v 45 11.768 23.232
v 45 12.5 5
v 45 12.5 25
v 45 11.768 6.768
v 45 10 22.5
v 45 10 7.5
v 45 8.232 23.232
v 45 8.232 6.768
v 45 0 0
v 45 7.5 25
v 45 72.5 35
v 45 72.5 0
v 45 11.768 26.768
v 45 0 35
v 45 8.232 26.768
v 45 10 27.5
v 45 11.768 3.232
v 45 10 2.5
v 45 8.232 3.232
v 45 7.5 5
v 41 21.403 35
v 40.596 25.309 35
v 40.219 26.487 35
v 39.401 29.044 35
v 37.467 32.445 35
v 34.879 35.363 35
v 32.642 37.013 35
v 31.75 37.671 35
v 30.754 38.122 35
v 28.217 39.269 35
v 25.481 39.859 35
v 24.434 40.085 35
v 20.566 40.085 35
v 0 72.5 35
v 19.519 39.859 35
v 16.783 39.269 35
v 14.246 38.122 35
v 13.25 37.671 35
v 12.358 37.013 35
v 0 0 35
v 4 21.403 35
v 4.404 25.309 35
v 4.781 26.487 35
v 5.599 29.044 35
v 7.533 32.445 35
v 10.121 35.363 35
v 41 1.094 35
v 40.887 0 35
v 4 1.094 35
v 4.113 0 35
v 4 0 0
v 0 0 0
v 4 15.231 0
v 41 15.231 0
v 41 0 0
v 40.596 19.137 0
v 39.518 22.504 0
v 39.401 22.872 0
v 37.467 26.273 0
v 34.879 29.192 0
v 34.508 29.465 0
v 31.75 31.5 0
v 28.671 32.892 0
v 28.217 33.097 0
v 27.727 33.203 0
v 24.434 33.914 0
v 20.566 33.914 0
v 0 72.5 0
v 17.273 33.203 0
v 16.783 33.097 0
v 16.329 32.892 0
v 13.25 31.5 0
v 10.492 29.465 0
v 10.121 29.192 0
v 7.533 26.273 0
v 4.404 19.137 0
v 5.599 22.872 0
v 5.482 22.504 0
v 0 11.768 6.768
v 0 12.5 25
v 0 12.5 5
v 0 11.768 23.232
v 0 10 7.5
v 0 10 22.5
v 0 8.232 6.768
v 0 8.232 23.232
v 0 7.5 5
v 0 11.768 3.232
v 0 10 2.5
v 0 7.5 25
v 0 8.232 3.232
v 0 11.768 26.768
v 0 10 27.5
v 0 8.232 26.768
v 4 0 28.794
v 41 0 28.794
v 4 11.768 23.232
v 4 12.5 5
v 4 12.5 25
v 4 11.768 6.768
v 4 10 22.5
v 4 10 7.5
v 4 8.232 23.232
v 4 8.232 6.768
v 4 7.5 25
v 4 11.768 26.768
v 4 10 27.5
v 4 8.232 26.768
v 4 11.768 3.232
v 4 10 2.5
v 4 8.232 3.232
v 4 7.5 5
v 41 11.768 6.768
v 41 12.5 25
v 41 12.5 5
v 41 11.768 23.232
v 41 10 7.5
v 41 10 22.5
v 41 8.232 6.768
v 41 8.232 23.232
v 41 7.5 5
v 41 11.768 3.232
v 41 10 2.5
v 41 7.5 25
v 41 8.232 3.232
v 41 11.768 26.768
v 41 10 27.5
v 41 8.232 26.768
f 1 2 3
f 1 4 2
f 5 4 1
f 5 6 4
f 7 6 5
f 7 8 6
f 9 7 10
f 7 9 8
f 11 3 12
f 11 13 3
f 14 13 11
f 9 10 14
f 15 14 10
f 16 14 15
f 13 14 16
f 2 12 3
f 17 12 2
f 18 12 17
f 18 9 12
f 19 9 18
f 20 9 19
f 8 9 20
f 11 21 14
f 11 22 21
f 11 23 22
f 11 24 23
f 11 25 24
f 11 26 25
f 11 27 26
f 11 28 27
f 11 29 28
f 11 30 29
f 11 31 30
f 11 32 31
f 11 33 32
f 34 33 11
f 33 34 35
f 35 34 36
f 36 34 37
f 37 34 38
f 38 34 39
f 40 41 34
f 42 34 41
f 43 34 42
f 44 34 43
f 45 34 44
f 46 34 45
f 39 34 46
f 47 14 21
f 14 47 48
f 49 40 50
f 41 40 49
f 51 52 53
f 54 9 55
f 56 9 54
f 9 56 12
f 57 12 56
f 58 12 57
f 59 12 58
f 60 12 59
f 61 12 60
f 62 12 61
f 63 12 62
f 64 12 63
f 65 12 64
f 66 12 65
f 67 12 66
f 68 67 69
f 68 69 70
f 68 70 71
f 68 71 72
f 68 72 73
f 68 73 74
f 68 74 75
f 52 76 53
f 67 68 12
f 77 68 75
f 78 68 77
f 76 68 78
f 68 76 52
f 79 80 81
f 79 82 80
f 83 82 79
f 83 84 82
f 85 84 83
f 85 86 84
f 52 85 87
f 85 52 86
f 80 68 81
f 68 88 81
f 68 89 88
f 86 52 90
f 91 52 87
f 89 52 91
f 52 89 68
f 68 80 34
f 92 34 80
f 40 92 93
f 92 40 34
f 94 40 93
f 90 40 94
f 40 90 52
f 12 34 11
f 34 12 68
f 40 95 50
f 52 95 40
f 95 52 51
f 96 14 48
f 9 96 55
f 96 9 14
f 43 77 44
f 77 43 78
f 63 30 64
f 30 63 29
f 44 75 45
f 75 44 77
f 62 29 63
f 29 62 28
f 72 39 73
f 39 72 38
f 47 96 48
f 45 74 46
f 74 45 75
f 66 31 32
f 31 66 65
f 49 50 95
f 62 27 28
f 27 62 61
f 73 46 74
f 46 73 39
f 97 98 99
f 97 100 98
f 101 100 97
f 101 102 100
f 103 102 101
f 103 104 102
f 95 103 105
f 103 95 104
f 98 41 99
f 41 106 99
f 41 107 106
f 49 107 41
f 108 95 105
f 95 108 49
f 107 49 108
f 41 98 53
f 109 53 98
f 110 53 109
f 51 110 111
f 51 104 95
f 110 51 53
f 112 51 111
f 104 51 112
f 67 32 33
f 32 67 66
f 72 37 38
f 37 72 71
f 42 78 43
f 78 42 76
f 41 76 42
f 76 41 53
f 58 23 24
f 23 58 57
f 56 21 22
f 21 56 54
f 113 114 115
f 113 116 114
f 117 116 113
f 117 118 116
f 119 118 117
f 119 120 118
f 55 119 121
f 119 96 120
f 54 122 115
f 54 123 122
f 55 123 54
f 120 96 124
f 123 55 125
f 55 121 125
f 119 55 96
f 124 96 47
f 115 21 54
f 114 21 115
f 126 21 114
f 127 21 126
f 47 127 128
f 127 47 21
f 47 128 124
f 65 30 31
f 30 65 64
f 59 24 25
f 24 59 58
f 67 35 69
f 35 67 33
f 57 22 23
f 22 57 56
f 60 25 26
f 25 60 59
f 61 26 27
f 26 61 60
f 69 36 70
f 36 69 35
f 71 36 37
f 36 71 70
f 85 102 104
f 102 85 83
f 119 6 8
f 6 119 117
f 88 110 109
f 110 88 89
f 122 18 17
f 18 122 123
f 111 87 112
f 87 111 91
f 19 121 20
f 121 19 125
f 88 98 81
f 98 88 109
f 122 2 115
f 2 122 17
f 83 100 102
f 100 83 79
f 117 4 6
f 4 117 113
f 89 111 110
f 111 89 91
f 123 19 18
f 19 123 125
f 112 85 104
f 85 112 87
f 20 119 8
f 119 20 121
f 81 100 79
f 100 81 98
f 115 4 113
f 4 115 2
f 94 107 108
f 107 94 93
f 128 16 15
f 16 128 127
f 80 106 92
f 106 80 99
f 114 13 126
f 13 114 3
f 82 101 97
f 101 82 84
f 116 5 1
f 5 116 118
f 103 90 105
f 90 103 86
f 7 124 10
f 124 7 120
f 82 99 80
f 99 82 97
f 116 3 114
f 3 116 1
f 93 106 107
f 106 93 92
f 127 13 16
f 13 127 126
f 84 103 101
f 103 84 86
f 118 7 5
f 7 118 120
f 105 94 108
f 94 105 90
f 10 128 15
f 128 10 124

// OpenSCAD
difference(){
cube([45,75-35/2+15,35]);
rotate([-10,0,0])
translate([0,15,-2])
hull(){
translate([35/2+5,0,0])
cylinder(d=37,h=60);
translate([35/2+5,-20,0])
cylinder(d=37,h=60);
}

translate([35/2+5,10,5])
rotate([0,90,0])
cylinder(d=5,h=100,center=true);

translate([35/2+5,10,45])
rotate([0,90,0])
cylinder(d=5,h=100,center=true);

translate([35/2+5,10,25])
rotate([0,90,0])
cylinder(d=5,h=100,center=true);
}
